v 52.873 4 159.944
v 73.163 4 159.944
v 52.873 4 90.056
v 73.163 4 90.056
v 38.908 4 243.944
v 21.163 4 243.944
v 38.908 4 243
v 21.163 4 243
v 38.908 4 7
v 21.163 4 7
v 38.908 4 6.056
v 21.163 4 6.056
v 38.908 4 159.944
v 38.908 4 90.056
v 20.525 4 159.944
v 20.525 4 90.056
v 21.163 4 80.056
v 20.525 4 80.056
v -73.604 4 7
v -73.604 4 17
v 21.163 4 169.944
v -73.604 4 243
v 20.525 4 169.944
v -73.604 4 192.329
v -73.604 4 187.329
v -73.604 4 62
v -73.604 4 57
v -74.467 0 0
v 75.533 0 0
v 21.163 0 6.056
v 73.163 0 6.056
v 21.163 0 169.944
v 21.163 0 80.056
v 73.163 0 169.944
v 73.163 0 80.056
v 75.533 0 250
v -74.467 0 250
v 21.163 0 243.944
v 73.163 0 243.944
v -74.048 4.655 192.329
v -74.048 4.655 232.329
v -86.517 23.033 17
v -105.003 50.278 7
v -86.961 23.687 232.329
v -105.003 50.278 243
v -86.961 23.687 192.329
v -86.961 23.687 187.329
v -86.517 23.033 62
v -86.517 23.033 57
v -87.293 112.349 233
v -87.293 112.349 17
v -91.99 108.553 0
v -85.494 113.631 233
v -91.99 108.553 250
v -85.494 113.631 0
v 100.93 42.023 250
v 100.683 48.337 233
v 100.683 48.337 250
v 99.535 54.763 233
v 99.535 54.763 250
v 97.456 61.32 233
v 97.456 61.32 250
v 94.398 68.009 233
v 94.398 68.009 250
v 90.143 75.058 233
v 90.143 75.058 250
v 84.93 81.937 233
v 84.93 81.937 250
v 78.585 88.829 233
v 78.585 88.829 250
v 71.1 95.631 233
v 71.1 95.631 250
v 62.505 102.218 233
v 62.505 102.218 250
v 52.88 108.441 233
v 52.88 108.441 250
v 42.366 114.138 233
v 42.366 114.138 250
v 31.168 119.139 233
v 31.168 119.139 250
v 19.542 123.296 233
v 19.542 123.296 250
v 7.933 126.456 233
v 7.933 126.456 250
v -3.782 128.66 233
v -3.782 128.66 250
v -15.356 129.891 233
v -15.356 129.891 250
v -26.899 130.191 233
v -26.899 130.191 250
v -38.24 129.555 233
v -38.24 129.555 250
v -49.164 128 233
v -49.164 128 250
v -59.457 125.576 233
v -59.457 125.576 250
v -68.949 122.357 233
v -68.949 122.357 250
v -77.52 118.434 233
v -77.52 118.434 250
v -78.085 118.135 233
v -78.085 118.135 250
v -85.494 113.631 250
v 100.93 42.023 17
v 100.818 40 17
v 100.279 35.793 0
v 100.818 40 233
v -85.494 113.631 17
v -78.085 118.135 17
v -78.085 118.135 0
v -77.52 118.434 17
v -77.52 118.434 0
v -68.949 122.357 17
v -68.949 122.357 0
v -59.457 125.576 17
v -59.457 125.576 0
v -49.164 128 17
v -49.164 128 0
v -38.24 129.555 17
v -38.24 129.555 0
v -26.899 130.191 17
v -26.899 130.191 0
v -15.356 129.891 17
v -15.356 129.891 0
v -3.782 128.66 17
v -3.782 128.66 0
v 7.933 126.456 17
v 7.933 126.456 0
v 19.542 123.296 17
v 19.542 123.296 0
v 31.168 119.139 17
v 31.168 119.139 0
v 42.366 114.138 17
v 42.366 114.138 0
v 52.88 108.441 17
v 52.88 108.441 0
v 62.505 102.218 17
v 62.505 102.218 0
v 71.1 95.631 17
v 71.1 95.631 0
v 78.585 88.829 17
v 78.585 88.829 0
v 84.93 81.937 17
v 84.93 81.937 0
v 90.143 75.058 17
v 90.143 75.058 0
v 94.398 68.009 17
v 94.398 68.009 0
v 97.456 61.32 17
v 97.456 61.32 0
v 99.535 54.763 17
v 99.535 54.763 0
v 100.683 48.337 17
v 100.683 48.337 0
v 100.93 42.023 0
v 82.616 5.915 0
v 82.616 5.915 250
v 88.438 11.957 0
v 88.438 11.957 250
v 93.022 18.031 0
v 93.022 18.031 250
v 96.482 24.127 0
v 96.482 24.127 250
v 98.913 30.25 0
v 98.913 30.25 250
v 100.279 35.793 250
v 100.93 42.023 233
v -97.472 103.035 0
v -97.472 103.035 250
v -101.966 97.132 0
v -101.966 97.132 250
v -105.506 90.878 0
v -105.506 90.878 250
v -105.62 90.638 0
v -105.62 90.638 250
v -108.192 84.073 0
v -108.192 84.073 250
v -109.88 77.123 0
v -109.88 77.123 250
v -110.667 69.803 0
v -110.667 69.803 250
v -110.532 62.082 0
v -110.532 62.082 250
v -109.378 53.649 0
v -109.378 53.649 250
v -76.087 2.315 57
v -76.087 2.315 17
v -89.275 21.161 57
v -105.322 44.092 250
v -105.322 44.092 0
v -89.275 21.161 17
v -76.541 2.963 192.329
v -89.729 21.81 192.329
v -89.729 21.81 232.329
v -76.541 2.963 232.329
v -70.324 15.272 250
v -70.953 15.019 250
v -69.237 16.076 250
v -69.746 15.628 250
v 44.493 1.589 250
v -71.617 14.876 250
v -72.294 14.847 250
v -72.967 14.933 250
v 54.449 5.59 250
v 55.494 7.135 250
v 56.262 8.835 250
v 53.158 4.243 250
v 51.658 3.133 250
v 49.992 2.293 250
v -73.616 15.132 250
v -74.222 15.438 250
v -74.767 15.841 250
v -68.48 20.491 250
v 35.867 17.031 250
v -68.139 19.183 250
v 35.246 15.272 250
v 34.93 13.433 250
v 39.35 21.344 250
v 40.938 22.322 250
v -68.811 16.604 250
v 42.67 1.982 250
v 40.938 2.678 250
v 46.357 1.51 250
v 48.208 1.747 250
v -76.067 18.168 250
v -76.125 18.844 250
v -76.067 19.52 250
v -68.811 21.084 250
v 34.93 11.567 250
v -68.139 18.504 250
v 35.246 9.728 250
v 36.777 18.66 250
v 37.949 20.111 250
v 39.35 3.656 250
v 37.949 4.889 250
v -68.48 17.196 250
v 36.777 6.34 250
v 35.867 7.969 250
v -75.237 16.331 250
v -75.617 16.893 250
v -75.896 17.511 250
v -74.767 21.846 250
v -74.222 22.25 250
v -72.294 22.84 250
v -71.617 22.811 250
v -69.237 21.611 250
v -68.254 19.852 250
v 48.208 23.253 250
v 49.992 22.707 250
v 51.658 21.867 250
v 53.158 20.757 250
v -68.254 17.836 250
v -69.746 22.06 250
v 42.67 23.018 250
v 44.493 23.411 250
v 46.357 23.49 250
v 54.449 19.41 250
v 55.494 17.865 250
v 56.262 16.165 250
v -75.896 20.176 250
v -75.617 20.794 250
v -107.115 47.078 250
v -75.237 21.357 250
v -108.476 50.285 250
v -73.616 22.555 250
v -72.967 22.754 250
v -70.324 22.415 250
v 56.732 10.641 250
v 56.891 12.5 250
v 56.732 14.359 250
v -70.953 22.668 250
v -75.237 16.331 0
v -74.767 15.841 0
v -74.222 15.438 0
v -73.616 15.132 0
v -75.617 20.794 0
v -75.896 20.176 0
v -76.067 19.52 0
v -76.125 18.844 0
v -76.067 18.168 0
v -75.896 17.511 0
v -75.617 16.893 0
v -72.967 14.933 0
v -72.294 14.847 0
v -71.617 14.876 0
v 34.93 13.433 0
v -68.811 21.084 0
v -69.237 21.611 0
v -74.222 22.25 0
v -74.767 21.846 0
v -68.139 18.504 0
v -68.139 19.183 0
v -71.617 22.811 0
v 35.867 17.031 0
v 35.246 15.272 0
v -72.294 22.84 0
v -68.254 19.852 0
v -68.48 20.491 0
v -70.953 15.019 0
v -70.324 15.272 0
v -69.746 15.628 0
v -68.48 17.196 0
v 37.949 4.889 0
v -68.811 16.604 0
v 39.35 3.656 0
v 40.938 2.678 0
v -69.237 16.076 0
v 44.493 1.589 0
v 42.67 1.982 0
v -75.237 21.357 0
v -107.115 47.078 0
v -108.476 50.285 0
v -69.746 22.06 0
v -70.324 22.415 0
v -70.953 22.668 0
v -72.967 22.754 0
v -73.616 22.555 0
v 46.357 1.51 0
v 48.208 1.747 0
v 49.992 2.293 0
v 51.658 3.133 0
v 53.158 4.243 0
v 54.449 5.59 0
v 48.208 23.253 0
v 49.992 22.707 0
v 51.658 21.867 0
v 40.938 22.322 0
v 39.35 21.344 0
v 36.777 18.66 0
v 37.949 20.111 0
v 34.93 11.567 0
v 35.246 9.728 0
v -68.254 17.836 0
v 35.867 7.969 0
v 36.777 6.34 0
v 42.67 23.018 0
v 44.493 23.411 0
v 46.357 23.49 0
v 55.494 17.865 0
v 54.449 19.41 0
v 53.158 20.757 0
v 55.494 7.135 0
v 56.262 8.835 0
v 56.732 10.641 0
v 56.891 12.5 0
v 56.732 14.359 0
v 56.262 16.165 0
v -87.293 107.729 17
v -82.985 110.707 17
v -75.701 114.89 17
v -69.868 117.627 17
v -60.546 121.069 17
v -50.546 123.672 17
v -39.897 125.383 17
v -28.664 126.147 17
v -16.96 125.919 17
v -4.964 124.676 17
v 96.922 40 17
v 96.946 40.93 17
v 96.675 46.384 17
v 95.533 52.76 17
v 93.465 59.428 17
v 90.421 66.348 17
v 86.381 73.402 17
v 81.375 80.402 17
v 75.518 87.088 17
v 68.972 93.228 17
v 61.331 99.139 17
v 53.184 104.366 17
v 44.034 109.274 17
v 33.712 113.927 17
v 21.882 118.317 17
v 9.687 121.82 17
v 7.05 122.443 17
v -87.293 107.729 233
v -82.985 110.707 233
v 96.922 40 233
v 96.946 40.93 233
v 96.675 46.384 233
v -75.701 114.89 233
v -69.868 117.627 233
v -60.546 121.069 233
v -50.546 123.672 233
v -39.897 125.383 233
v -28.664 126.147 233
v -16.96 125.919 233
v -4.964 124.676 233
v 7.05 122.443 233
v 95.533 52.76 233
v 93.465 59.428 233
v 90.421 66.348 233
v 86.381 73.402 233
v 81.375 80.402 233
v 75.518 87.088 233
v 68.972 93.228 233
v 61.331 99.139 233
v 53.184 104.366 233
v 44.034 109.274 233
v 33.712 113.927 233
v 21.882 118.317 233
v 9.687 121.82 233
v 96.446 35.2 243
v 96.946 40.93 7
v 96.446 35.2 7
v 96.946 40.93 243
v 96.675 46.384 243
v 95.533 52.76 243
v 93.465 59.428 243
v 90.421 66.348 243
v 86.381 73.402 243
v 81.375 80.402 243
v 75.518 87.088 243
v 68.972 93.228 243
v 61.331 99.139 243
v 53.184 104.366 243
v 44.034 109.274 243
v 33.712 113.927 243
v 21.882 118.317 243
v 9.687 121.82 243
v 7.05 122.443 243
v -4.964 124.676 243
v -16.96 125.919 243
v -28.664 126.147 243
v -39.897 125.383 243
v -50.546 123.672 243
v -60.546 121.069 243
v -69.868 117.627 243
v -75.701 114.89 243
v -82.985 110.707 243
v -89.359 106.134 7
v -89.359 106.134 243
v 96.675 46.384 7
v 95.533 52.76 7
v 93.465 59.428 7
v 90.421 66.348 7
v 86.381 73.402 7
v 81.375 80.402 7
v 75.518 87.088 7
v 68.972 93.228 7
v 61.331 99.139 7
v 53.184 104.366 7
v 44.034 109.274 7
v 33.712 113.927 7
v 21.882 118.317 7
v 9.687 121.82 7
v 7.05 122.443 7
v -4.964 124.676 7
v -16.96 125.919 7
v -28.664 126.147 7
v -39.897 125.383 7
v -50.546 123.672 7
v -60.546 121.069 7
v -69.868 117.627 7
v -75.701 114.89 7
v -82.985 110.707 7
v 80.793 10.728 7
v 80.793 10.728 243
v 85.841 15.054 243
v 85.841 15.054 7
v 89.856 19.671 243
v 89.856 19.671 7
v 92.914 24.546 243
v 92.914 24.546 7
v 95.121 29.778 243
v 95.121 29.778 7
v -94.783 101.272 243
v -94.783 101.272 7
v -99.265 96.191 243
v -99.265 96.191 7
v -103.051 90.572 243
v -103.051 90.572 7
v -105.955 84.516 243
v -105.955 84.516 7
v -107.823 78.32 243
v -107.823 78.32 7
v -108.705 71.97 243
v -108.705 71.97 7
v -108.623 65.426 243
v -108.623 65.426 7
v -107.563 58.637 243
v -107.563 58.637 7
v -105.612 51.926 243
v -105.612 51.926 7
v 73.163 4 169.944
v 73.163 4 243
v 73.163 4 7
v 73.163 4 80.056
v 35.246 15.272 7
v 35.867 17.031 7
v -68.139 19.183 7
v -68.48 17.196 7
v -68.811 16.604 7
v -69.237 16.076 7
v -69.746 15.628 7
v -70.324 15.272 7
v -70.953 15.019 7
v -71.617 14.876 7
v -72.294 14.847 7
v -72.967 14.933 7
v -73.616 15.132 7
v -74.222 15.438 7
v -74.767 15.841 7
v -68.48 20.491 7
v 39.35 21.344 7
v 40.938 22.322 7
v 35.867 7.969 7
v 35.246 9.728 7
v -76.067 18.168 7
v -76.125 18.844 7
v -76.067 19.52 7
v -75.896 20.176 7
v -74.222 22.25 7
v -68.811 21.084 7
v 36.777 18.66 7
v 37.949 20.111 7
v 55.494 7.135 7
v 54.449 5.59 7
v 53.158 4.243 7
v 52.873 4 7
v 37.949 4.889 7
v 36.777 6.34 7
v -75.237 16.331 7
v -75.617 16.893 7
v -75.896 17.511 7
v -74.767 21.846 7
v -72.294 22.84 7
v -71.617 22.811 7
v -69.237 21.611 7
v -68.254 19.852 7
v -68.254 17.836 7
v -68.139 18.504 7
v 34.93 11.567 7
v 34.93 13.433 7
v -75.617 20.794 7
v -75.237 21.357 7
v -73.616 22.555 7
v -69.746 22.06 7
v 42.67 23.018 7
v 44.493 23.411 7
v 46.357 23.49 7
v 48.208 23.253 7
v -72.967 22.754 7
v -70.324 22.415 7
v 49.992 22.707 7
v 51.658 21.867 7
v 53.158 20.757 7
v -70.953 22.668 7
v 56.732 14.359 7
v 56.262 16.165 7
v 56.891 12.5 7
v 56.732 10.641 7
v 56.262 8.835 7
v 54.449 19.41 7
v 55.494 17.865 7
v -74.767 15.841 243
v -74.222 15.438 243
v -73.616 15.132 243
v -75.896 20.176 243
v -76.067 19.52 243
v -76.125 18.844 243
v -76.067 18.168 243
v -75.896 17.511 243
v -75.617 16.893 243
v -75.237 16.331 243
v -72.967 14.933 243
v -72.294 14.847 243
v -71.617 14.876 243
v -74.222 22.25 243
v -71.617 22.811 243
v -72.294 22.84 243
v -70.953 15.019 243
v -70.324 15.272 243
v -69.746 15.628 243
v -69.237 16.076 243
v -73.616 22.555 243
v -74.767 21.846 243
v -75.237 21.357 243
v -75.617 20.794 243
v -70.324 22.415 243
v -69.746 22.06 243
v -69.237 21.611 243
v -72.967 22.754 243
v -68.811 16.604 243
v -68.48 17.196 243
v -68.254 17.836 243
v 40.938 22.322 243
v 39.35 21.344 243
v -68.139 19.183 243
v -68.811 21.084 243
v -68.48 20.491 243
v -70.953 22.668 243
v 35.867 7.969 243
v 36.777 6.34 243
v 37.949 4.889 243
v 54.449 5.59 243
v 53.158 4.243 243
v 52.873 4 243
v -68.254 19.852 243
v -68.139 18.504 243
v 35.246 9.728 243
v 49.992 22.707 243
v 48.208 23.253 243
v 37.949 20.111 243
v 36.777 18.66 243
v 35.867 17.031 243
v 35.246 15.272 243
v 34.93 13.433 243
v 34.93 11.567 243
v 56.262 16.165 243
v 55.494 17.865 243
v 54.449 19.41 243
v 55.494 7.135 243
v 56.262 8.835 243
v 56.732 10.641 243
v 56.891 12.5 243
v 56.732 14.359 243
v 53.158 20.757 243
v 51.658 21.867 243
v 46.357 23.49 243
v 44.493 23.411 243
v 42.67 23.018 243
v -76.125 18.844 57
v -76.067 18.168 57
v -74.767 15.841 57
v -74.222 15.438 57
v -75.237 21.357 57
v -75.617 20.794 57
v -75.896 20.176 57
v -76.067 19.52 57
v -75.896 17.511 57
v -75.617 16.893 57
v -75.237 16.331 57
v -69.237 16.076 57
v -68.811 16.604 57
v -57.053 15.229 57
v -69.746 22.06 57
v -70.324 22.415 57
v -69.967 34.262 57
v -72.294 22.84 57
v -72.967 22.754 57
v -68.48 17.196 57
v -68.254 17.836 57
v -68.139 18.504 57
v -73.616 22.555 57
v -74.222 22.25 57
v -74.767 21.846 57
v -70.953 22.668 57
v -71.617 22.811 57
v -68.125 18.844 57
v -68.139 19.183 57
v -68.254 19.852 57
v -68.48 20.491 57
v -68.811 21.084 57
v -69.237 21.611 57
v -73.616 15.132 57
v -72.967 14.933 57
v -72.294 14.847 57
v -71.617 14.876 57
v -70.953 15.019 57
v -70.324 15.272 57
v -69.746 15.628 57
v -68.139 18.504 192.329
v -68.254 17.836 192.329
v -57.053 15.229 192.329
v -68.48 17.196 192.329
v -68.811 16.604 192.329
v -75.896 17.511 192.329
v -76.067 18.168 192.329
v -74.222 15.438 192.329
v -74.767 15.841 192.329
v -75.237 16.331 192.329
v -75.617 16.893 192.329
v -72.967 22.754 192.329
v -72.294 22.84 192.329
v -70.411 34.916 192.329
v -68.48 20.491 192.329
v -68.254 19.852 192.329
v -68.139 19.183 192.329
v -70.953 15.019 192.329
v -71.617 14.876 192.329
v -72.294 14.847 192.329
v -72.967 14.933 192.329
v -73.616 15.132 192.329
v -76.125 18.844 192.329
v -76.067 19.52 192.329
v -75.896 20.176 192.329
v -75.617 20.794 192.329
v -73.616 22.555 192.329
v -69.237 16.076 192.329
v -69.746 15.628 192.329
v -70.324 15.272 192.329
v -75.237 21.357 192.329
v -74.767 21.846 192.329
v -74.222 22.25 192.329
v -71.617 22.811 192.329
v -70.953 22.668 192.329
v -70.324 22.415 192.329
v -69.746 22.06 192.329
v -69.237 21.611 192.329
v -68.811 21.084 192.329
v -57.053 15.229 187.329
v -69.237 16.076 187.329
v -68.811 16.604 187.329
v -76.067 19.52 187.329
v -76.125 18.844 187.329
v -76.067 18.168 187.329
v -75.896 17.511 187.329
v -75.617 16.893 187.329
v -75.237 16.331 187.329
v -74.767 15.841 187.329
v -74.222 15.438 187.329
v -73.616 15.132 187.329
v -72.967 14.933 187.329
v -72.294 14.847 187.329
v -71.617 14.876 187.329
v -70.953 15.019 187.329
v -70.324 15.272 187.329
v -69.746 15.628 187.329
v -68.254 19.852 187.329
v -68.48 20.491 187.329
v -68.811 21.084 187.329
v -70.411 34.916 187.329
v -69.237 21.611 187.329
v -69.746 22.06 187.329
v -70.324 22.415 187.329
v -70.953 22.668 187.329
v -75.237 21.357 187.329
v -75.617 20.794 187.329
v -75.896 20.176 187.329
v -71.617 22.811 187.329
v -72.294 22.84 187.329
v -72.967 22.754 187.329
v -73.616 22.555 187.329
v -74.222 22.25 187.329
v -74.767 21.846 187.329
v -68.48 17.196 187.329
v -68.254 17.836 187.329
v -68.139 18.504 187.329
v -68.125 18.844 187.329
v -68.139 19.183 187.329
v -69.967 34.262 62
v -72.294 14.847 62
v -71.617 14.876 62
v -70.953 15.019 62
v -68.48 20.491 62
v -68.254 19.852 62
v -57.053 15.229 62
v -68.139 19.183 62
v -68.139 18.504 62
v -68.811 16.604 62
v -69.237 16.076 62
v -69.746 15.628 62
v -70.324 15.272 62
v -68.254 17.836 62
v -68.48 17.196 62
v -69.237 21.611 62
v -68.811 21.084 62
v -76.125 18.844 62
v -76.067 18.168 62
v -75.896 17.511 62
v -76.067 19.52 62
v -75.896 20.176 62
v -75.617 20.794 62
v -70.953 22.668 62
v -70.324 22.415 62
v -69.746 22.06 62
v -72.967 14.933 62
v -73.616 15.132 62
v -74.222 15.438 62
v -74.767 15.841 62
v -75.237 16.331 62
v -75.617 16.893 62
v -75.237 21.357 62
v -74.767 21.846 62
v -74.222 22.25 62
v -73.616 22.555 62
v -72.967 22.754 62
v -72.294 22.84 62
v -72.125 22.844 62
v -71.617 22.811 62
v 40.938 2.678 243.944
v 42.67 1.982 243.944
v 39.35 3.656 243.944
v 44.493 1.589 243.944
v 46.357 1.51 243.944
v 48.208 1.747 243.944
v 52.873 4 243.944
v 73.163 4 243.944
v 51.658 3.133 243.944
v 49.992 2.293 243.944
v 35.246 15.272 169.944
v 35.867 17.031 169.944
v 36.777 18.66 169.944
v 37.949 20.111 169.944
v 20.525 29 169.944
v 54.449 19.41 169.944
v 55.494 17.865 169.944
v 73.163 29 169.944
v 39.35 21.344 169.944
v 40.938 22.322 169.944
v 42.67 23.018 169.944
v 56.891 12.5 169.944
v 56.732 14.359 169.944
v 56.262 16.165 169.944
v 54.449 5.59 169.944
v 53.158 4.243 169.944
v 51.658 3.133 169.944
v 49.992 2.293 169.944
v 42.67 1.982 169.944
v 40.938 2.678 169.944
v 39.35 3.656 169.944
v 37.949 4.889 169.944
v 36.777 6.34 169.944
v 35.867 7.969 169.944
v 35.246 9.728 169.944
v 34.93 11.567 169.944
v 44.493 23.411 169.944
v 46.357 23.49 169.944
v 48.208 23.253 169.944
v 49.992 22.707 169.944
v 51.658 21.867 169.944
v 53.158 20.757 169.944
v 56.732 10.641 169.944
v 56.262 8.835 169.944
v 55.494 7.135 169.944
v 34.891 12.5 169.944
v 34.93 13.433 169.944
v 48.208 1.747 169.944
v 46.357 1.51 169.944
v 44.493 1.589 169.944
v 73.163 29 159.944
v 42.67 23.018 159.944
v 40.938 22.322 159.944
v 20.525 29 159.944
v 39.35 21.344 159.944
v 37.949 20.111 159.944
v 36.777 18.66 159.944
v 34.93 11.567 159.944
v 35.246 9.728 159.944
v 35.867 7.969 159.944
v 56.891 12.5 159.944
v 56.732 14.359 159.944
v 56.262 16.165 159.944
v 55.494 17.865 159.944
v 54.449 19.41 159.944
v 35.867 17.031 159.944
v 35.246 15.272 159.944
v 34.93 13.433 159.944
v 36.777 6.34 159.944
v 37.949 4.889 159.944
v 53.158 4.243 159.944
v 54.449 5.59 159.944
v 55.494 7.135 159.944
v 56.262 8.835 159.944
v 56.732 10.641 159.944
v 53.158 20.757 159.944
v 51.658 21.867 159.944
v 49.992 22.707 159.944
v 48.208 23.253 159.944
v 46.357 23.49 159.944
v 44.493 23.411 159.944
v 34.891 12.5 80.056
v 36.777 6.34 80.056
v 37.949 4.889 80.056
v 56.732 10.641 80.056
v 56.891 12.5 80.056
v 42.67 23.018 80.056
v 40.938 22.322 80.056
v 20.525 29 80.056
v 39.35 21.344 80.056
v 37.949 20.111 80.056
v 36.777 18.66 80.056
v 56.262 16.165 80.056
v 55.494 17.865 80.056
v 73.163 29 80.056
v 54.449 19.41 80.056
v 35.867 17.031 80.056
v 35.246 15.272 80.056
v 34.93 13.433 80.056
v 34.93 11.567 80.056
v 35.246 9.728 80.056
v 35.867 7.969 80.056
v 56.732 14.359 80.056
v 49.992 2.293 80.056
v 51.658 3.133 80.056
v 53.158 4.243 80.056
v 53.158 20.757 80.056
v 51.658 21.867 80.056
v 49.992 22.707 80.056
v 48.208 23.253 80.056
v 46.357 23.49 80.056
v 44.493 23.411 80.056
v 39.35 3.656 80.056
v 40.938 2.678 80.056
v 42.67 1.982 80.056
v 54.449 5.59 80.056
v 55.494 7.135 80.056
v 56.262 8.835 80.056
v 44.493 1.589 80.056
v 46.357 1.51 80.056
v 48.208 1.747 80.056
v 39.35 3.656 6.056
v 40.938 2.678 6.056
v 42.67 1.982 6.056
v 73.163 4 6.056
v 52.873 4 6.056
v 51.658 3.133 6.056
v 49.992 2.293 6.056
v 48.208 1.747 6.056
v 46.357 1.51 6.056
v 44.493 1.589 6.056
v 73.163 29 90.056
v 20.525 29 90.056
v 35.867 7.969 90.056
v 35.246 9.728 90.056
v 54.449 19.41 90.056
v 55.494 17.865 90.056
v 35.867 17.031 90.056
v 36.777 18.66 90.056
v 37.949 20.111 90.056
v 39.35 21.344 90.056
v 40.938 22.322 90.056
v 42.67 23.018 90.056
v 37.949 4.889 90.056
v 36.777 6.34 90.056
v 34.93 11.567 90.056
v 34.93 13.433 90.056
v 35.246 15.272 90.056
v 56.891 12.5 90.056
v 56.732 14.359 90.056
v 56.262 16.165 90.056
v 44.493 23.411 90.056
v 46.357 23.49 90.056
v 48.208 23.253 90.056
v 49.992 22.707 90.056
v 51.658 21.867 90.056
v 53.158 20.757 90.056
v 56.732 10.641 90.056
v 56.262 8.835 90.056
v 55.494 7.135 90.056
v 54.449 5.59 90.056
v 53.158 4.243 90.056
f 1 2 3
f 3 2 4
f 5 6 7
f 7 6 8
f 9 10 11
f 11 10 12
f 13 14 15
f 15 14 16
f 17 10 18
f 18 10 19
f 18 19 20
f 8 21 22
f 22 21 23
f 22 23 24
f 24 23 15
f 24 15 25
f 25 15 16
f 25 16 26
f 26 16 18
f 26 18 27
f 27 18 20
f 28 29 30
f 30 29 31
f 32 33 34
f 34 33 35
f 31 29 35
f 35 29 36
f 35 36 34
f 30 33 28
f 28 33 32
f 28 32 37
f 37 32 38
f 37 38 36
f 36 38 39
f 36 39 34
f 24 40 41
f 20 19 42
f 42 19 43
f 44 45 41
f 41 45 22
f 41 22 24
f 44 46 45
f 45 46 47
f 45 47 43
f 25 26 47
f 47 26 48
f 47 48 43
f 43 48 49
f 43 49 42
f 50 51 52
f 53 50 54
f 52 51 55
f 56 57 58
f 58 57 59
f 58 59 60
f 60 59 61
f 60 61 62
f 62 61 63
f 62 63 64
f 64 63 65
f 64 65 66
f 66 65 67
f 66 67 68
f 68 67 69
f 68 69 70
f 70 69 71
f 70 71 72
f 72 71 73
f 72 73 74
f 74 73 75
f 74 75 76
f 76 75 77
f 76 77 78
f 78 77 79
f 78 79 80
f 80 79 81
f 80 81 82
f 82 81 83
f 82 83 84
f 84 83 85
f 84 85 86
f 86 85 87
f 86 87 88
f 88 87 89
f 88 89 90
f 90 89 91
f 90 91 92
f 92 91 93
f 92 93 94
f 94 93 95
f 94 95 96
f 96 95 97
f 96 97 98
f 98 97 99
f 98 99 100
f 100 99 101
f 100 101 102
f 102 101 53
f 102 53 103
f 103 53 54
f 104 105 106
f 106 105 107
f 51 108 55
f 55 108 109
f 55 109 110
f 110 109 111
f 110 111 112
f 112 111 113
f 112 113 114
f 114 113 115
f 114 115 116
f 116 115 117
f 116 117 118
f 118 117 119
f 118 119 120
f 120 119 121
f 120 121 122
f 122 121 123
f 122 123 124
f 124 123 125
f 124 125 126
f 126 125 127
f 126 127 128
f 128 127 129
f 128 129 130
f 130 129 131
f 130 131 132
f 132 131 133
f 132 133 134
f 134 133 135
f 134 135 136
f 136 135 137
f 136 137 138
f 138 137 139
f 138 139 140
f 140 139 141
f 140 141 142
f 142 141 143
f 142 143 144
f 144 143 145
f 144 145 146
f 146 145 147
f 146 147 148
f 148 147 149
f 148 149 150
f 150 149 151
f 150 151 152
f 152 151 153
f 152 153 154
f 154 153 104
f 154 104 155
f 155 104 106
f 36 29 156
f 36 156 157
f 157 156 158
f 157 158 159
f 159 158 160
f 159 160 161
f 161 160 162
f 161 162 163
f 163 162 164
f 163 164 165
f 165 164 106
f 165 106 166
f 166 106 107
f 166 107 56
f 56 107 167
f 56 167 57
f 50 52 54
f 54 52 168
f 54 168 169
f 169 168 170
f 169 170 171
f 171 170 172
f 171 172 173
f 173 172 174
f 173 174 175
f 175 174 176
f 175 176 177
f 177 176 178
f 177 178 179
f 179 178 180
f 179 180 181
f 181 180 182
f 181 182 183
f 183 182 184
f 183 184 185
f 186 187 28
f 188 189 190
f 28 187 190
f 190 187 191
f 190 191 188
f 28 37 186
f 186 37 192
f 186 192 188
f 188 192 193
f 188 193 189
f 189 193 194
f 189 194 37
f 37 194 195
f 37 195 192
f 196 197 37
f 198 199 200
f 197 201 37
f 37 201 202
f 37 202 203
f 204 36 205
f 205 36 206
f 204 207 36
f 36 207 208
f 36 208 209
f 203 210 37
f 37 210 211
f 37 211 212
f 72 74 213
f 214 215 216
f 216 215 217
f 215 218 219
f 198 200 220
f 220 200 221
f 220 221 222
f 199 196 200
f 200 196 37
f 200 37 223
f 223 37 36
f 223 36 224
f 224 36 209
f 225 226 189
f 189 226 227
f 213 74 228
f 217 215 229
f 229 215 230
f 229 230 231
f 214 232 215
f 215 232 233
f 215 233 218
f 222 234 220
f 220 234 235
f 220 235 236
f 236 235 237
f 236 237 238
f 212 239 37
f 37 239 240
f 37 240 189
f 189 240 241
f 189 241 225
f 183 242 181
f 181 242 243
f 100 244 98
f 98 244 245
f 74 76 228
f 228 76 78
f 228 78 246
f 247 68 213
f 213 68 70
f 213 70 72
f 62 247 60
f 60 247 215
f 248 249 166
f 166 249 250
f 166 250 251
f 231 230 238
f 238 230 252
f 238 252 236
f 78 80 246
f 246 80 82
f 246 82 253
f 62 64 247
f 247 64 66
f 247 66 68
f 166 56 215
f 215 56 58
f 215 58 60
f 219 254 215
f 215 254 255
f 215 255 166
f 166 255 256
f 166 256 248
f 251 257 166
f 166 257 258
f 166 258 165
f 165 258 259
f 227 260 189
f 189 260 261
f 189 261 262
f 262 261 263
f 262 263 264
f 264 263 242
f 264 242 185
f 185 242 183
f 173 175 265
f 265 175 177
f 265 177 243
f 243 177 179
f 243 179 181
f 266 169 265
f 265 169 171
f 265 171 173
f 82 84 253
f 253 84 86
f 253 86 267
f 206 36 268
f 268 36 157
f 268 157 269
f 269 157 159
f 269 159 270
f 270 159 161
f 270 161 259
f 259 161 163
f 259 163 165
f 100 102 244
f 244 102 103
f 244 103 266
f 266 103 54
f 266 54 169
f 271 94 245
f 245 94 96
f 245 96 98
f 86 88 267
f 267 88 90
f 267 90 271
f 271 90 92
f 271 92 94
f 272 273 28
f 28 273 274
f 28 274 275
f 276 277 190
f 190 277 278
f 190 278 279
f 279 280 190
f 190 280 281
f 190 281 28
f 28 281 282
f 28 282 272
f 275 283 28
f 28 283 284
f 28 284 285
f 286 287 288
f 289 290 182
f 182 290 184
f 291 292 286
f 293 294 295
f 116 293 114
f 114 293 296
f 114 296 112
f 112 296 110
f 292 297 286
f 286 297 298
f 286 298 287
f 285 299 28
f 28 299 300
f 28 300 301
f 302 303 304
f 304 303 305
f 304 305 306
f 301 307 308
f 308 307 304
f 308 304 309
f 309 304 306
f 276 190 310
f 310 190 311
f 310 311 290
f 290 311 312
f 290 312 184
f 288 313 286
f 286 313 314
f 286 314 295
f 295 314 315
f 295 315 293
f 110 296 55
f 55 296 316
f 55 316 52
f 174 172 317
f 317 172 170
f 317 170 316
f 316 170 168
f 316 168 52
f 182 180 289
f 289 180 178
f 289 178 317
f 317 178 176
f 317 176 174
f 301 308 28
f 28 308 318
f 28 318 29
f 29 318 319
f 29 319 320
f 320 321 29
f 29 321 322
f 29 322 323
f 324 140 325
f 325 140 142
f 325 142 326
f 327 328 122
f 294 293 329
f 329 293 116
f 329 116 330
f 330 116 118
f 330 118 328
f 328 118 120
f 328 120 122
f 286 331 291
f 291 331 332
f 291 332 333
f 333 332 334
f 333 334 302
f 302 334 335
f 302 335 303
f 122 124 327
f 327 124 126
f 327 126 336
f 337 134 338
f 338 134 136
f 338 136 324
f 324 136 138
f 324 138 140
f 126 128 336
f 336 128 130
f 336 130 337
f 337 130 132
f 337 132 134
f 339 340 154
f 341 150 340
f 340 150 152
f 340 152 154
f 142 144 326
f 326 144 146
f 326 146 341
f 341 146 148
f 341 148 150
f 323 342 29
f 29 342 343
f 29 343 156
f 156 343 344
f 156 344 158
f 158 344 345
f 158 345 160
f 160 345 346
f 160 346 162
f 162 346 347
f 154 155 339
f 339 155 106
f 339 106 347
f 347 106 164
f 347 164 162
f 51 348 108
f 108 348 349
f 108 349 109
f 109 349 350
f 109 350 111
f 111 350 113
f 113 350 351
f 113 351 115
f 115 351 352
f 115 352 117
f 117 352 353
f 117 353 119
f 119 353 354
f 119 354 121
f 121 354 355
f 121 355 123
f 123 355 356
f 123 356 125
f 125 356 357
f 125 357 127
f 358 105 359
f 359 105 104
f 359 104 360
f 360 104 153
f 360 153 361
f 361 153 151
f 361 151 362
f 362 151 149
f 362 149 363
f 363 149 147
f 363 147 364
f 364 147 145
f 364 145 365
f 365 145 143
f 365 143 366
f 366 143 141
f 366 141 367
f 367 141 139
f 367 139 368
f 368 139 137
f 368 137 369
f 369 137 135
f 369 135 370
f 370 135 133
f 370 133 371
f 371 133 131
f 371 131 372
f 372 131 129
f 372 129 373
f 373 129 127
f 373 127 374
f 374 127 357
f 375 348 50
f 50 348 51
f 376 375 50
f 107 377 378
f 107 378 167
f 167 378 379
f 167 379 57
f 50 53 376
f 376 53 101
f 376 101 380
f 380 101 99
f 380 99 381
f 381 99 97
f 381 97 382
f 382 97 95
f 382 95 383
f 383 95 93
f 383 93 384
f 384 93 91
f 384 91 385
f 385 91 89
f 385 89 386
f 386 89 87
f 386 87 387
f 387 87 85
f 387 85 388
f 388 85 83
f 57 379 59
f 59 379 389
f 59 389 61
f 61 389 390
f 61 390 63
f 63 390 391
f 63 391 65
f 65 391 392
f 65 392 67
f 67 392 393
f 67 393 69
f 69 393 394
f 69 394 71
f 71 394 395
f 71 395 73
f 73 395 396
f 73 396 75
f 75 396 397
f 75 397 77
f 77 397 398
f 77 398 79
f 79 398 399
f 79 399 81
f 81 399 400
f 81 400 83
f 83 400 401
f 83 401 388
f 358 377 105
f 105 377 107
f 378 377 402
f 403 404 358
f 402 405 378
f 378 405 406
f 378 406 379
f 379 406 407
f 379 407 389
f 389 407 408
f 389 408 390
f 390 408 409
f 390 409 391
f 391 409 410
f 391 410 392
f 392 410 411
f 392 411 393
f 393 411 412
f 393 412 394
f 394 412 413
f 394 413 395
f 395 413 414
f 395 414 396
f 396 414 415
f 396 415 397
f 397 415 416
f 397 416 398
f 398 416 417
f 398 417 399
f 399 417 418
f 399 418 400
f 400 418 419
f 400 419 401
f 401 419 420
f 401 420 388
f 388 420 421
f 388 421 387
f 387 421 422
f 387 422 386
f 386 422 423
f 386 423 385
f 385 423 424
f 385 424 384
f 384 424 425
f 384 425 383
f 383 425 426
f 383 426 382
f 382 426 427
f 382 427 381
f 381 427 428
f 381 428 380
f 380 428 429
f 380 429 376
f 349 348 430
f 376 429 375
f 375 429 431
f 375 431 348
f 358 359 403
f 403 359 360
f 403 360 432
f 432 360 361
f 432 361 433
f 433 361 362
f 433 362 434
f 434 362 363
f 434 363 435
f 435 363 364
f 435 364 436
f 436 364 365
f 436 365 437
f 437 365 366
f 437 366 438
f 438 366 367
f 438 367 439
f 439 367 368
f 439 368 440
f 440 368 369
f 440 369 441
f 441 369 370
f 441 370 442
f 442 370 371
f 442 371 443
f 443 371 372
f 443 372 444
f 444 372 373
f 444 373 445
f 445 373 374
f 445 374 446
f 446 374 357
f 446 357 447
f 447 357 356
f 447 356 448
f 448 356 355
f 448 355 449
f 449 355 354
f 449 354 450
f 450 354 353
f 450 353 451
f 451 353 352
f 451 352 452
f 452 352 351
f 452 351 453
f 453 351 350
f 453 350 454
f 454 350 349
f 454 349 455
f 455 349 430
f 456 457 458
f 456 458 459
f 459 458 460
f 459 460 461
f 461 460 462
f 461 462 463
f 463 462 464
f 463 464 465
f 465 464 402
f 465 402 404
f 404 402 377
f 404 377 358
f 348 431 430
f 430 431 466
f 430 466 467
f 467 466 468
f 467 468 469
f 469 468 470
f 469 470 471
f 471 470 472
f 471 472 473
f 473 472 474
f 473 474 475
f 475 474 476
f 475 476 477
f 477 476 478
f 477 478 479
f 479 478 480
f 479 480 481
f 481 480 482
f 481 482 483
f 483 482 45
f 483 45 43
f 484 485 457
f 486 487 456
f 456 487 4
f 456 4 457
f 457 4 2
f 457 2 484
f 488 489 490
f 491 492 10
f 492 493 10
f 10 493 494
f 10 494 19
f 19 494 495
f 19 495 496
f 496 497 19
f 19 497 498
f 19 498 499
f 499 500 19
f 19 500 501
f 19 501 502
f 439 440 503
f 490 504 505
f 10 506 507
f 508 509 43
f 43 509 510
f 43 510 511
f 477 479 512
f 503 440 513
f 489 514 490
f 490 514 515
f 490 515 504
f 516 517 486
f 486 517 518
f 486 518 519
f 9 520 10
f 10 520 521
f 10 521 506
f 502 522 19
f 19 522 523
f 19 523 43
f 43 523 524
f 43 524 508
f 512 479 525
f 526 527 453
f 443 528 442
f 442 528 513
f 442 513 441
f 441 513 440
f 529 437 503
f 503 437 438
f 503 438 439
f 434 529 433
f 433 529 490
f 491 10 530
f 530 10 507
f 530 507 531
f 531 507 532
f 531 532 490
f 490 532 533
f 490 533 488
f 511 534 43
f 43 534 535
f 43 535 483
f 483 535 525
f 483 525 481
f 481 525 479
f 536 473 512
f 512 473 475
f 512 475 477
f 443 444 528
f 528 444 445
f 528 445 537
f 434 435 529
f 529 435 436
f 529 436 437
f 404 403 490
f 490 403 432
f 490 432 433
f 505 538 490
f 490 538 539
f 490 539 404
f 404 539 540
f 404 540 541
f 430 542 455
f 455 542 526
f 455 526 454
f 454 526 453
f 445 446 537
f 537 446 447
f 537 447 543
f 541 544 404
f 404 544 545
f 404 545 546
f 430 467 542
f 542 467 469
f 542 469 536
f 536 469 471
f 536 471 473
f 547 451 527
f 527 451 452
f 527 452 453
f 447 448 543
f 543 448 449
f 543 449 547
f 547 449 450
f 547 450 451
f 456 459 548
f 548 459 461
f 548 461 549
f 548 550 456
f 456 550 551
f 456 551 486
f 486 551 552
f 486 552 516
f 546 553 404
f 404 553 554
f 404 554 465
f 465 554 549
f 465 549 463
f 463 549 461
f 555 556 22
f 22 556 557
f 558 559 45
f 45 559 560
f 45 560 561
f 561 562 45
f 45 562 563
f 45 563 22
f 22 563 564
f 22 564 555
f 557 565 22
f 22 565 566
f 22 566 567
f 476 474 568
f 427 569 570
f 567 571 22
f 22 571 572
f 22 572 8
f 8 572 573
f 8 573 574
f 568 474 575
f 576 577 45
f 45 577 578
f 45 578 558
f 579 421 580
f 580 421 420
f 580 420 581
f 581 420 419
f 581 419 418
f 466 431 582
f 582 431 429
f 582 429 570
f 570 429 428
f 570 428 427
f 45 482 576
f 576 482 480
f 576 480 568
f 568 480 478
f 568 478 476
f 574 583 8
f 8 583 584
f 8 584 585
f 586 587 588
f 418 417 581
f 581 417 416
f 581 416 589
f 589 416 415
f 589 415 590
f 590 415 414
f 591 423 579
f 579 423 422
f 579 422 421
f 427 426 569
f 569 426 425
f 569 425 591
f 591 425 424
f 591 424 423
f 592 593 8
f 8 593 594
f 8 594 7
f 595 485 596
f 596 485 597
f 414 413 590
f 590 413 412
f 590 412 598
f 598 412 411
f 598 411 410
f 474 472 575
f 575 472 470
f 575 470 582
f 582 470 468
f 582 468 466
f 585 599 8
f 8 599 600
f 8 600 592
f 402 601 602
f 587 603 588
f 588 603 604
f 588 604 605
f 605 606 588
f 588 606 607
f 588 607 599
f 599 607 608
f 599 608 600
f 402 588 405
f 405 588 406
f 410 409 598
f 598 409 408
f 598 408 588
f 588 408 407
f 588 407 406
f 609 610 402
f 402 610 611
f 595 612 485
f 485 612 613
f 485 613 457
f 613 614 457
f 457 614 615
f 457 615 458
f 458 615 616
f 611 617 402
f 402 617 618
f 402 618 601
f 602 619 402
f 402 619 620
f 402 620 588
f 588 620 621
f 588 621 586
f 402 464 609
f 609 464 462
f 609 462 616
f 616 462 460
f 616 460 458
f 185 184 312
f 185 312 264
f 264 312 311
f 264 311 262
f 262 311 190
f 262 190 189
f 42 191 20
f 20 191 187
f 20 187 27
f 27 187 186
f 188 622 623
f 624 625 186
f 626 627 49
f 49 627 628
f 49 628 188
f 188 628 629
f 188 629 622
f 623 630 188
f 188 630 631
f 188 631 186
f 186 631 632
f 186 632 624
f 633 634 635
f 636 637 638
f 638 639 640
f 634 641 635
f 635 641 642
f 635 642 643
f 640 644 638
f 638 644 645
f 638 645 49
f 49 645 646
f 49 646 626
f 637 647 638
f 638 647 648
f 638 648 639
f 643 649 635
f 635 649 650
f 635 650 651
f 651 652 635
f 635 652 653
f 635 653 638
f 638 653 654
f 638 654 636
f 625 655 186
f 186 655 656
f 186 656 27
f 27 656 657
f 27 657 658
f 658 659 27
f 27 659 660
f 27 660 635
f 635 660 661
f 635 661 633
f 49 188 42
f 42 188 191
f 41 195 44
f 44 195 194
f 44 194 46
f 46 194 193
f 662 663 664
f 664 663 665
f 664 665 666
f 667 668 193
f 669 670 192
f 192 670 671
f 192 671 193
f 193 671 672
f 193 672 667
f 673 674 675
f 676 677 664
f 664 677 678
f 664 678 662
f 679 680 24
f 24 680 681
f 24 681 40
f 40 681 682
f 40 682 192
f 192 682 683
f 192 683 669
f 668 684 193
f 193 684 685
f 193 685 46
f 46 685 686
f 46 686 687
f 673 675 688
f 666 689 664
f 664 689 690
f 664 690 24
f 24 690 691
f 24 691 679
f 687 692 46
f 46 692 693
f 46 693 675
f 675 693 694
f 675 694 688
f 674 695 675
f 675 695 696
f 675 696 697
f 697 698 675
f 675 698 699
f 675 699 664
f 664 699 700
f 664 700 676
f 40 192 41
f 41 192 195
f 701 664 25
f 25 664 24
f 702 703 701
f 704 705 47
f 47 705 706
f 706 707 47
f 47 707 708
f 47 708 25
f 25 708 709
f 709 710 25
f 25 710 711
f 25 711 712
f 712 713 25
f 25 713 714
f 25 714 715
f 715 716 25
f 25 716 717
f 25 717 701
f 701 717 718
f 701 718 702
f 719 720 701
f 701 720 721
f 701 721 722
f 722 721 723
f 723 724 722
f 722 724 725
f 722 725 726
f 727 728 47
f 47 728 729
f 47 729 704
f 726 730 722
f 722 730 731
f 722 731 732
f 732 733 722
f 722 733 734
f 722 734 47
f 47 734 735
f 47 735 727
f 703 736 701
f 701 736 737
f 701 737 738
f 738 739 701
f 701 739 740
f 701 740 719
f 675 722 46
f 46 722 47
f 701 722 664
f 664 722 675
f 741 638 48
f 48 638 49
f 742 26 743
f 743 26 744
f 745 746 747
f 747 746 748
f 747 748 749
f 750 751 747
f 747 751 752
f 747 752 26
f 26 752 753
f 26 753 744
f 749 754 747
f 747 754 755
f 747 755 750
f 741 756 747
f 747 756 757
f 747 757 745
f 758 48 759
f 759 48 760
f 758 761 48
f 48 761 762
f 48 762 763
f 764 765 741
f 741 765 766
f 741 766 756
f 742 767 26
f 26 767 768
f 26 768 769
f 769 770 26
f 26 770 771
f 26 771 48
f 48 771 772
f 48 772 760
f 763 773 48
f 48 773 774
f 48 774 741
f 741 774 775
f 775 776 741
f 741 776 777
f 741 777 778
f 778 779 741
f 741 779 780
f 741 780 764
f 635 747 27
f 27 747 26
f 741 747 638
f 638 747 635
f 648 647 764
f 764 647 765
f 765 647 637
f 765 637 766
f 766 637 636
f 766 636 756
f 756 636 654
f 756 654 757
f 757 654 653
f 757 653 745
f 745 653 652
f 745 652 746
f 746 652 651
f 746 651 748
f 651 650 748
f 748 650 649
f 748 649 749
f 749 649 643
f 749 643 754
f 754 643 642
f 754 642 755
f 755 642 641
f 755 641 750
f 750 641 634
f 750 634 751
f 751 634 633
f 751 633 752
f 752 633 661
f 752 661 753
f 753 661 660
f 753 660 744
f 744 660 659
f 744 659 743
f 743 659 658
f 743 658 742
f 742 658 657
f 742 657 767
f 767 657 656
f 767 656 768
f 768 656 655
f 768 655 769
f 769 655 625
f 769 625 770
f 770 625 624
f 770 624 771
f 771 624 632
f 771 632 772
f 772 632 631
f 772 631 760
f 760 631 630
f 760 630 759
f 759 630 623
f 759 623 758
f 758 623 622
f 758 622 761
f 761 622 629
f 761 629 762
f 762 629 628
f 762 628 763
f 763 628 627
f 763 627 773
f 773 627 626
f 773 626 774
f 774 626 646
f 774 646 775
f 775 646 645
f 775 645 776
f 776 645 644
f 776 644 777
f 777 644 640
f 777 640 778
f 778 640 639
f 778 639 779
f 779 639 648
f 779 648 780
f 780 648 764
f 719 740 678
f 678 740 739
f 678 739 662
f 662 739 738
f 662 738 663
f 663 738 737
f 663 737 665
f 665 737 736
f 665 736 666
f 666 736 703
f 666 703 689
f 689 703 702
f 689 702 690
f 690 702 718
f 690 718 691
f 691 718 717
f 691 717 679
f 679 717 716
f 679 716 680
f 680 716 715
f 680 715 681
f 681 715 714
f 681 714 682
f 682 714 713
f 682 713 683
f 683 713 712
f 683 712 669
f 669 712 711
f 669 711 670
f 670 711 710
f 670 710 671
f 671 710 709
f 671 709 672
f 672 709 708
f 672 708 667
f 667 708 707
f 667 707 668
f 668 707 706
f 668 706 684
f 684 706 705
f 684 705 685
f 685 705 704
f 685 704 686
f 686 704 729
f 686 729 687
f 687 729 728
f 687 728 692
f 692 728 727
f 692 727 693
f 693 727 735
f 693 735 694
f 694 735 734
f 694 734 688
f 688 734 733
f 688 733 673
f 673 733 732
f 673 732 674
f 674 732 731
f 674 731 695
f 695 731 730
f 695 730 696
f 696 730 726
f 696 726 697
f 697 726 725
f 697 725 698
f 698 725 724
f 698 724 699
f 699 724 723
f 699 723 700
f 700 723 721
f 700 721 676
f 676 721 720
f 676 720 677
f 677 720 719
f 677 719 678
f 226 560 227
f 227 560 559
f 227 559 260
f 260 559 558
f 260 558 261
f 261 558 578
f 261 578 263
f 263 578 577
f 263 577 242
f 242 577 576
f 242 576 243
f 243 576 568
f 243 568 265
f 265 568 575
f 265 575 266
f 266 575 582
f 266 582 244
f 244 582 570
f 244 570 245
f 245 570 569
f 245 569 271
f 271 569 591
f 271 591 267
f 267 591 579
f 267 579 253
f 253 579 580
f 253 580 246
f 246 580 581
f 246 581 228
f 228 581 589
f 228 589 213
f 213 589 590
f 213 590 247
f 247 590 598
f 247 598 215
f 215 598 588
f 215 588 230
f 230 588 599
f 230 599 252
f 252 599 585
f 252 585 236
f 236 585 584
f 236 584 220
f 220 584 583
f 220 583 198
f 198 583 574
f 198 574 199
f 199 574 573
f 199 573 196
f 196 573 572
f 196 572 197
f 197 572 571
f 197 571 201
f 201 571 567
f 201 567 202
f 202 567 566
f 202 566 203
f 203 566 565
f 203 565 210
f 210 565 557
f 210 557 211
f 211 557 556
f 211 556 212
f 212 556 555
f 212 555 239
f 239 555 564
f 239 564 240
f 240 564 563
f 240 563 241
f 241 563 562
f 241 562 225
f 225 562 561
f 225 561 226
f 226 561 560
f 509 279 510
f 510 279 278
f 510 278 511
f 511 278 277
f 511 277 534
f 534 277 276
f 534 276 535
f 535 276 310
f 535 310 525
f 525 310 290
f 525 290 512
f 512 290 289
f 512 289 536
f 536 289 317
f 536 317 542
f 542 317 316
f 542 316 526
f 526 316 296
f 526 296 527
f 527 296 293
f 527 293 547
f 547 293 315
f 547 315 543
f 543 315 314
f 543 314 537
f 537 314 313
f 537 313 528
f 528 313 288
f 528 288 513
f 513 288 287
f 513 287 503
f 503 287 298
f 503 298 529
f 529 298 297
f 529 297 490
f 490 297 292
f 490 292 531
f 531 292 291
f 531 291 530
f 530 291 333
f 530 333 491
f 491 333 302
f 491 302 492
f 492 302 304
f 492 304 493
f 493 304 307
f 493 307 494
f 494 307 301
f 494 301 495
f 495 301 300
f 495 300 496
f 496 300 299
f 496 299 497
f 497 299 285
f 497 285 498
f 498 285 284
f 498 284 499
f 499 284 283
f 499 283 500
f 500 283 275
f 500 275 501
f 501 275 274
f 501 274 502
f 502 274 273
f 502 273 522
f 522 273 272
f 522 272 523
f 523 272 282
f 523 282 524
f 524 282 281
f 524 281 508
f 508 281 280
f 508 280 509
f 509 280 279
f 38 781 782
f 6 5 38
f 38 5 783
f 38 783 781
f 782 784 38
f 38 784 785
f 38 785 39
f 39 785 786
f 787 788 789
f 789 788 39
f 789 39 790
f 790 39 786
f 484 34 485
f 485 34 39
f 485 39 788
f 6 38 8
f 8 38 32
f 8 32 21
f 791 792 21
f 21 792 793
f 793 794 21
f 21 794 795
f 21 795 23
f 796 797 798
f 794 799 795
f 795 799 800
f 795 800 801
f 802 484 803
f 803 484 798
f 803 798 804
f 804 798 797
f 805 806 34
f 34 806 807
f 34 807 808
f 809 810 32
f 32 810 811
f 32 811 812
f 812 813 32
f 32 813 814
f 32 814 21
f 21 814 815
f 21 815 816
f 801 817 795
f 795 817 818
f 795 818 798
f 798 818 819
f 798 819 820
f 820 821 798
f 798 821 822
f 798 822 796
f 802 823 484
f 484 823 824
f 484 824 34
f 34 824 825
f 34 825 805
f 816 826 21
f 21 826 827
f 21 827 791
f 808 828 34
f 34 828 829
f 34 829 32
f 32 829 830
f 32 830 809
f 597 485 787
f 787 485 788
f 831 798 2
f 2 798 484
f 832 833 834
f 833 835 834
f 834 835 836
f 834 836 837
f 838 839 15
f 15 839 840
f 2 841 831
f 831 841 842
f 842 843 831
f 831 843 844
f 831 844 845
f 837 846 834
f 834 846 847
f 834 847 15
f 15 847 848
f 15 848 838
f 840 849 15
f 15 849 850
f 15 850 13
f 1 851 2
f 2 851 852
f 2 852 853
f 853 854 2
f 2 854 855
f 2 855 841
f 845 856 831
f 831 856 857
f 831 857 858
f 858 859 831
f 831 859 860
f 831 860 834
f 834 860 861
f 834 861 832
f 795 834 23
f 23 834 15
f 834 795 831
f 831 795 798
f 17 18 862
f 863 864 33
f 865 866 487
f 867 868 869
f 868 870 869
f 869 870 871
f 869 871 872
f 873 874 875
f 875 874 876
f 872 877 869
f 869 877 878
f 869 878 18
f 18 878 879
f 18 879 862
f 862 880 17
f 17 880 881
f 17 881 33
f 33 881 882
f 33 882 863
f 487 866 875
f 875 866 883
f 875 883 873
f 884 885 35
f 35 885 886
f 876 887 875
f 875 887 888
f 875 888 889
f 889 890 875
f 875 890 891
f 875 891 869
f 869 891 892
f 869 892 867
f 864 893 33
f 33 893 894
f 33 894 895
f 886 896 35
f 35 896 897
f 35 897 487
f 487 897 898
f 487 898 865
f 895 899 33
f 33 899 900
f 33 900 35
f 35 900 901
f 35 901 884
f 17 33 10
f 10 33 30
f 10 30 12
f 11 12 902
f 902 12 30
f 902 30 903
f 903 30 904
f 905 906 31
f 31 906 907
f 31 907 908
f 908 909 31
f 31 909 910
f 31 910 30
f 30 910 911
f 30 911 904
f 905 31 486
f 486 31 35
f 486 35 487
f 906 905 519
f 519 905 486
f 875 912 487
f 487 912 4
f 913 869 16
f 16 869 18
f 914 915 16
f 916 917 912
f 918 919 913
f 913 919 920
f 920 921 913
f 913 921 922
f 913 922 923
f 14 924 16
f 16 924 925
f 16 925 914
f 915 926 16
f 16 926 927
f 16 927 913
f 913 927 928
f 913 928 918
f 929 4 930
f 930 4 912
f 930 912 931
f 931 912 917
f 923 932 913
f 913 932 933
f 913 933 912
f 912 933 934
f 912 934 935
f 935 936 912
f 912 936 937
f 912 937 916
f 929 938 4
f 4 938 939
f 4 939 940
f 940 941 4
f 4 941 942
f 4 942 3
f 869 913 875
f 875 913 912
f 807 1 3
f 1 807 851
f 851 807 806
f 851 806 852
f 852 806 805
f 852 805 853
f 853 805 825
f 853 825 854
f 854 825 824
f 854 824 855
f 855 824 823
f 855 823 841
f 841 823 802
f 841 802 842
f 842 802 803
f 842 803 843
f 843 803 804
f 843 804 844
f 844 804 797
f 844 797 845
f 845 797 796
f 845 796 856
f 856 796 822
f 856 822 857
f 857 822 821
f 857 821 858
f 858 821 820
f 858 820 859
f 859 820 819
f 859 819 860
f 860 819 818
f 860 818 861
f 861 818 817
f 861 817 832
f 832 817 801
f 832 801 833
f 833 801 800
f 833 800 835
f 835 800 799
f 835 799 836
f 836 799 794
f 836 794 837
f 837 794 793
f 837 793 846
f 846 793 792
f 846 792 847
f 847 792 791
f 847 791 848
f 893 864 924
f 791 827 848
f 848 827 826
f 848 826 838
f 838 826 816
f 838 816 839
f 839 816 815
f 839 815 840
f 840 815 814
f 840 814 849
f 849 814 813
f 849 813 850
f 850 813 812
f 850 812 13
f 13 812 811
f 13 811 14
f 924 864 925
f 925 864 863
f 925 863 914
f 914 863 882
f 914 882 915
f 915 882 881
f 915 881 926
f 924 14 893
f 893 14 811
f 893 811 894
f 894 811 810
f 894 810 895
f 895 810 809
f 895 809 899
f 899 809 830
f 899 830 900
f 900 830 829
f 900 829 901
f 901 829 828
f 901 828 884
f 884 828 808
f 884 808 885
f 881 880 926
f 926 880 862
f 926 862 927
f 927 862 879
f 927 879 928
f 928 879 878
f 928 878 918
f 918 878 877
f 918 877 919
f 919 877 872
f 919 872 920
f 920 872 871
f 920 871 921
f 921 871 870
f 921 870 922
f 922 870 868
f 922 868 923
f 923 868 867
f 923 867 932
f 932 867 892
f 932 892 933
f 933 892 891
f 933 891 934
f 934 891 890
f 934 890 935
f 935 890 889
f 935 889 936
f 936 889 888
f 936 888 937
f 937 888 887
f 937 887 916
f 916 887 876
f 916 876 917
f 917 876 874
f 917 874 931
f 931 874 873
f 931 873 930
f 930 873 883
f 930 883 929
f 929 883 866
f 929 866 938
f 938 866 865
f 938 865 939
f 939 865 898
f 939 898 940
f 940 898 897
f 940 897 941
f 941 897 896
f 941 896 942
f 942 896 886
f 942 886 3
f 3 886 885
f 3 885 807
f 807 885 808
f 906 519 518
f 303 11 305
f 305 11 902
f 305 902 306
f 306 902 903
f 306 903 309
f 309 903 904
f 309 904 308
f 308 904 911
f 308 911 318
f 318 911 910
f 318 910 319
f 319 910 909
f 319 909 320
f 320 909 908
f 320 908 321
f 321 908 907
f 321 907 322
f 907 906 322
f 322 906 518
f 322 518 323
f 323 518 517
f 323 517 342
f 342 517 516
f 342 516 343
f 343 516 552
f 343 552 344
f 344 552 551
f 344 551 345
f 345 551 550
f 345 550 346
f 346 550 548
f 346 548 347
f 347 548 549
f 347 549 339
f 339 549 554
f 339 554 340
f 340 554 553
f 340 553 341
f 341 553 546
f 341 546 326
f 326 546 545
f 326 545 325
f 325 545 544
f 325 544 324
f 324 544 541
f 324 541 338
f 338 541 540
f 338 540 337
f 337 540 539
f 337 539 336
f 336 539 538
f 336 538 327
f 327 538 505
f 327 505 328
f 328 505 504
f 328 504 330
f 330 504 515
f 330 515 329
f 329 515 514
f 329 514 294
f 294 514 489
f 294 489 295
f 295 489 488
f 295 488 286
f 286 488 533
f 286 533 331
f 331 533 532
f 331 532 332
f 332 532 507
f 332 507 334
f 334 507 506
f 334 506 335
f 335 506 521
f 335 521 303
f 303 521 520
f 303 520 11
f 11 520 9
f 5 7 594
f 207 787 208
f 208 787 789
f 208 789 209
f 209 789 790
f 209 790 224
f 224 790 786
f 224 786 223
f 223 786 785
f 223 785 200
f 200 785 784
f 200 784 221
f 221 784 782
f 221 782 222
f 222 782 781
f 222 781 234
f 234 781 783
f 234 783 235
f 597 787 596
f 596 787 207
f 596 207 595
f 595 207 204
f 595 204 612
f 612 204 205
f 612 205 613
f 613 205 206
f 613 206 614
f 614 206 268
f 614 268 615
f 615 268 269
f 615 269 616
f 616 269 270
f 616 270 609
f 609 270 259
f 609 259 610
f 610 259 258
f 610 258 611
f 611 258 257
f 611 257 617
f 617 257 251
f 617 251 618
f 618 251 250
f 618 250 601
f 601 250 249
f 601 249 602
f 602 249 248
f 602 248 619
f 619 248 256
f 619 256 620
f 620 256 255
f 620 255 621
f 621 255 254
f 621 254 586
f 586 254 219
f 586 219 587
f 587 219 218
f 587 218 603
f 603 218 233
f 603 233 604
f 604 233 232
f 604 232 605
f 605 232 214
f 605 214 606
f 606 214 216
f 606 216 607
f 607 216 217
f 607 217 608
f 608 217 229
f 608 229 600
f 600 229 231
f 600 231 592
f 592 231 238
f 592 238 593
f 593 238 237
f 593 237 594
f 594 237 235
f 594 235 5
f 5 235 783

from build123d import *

# Parameters (mm, degrees)
BOSS_EXTRUDE1_DEPTH      = 250
CUT_EXTRUDE1_START       = -7
CUT_EXTRUDE1_DEPTH       = 236
CUT_EXTRUDE2_START       = 40
SKETCH3_W                = 188.244995532
SKETCH3_H                = 216
CUT_EXTRUDE2_DEPTH       = 236
FILLET1_R                = 25
SKETCH16_W               = 40
SKETCH16_H               = 23
CUT_EXTRUDE11_DEPTH      = 170
SKETCH17_W               = 5
SKETCH17_H               = 23.791120356
SKETCH17_H_2             = 23
BOSS_EXTRUDE5_DEPTH      = 20
SKETCH18_R               = 4
CUT_EXTRUDE12_DEPTH      = 58.0000001
CUT_EXTRUDE12_DEPTH_BACK = 194.0000001
SKETCH21_W               = 52
SKETCH21_H               = 74
CUT_EXTRUDE13_DEPTH      = 10
SKETCH22_W               = 52.638555516
SKETCH22_H               = 10
BOSS_EXTRUDE6_DEPTH      = 25
SKETCH24_R               = 11
CUT_EXTRUDE14_DEPTH      = 81.055617737
CUT_EXTRUDE14_DEPTH_BACK = 170.944382463


with BuildPart() as part:
    # Sketch1 → Boss-Extrude1 (new body)
    with BuildSketch(Plane.XY):
        with BuildLine():
            Line((-74.466852712, 0), (75.533147288, 0))
            add(Edge.make_bspline(
                [(75.533147288, 0), (138.063372934, 47.200510513), (16.470001542, 172.007803308), (-124.949591118, 111.301552399), (-108.081203548, 48.03596108)],
                knots=[0, 0, 0, 0, 0.526874503, 1, 1, 1, 1], degree=3))
            Line((-108.081203548, 48.03596108), (-74.466852712, 0))
        make_face()
    extrude(amount=BOSS_EXTRUDE1_DEPTH)

    # Sketch2 → Cut-Extrude1 (cut)
    with BuildSketch(Plane.XY.offset(250).offset(CUT_EXTRUDE1_START)):
        with BuildLine():
            Line((-105.002588912, 50.278247003), (-73.603513663, 4))
            Line((-73.603513663, 4), (73.163375947, 4))
            Line((73.163375947, 4), (80.793344513, 10.72835486))
            add(Edge.make_bspline(
                [(80.793344513, 10.72835486), (92.651817418, 19.563808902), (103.009839439, 45.205558115), (79.954027593, 88.91810325), (40.607899873, 112.95610518), (-11.204752472, 129.142722192), (-79.431682825, 124.667635826), (-117.344714605, 82.323825457), (-105.002588912, 50.278247003)],
                knots=[0.016278873, 0.016278873, 0.016278873, 0.016278873, 0.12675304, 0.268313114, 0.414746674, 0.542882576, 0.761532881, 1, 1, 1, 1], degree=3))
        make_face()
    extrude(amount=-CUT_EXTRUDE1_DEPTH, mode=Mode.SUBTRACT)

    # Sketch3 → Cut-Extrude2 (cut)
    with BuildSketch(Plane(origin=(0, 0, 0), x_dir=(1, 0, 0), z_dir=(0, 1, 0)).offset(CUT_EXTRUDE2_START)):
        with Locations((6.82953452, -125)):
            Rectangle(SKETCH3_W, SKETCH3_H)
    extrude(amount=CUT_EXTRUDE2_DEPTH, mode=Mode.SUBTRACT)

    # Fillet1
    fillet1_edges = [part.edges().sort_by_distance(p)[0] for p in [
        (-108.081203548, 48.03596108, 125),
    ]]
    fillet(fillet1_edges, radius=FILLET1_R)

    # Sketch16 → Cut-Extrude11 (cut)
    with BuildSketch(Plane(origin=(-48.543156815, -32.935781547, 0), x_dir=(0, 0, -1), z_dir=(0.827509179, 0.561452187, 0))):
        with Locations((-212.328725108, 56.926010788)):
            Rectangle(SKETCH16_W, SKETCH16_H)
        with Locations((-37, 56.134890432)):
            Rectangle(SKETCH16_W, SKETCH16_H)
    extrude(amount=-CUT_EXTRUDE11_DEPTH, mode=Mode.SUBTRACT)

    # Sketch17 → Boss-Extrude5 (add)
    with BuildSketch(Plane(origin=(-48.543156815, -32.935781547, 0), x_dir=(0, 0, -1), z_dir=(0.827509179, 0.561452187, 0))):
        with Locations((-189.828725108, 56.53045061)):
            Rectangle(SKETCH17_W, SKETCH17_H)
        with Locations((-59.5, 56.134890432)):
            Rectangle(SKETCH17_W, SKETCH17_H_2)
    extrude(amount=BOSS_EXTRUDE5_DEPTH)

    # Sketch18 → Cut-Extrude12 (cut, two sides)
    with BuildSketch(Plane(origin=(0, 0, 57), x_dir=(-1, 0, 0), z_dir=(0, 0, -1))) as cut_extrude12_sk:
        with Locations((72.12467311, 18.843671615)):
            Circle(SKETCH18_R)
    extrude(amount=CUT_EXTRUDE12_DEPTH, mode=Mode.SUBTRACT)
    extrude(cut_extrude12_sk.sketch, amount=-CUT_EXTRUDE12_DEPTH_BACK, mode=Mode.SUBTRACT)

    # Sketch21 → Cut-Extrude13 (cut)
    with BuildSketch(Plane(origin=(0, 4, 0), x_dir=(1, 0, 0), z_dir=(0, 1, 0))):
        with Locations((47.163375947, -206.944382363)):
            Rectangle(SKETCH21_W, SKETCH21_H)
    cut_extrude13 = extrude(amount=-CUT_EXTRUDE13_DEPTH, mode=Mode.SUBTRACT)

    # Sketch22 → Boss-Extrude6 (add)
    with BuildSketch(Plane(origin=(0, 4, 0), x_dir=(1, 0, 0), z_dir=(0, 1, 0))):
        with Locations((46.844098189, -164.944382363)):
            Rectangle(SKETCH22_W, SKETCH22_H)
    boss_extrude6 = extrude(amount=BOSS_EXTRUDE6_DEPTH)

    # Mirror2: Cut-Extrude13, Boss-Extrude6 across plane
    add(cut_extrude13.mirror(Plane.XY.offset(125)), mode=Mode.SUBTRACT)
    add(boss_extrude6.mirror(Plane.XY.offset(125)))

    # Sketch24 → Cut-Extrude14 (cut, two sides)
    with BuildSketch(Plane.XY.offset(169.944382363)) as cut_extrude14_sk:
        with Locations((45.890595185, 12.5)):
            Circle(SKETCH24_R)
    extrude(amount=CUT_EXTRUDE14_DEPTH, mode=Mode.SUBTRACT)
    extrude(cut_extrude14_sk.sketch, amount=-CUT_EXTRUDE14_DEPTH_BACK, mode=Mode.SUBTRACT)


solid = part.part
